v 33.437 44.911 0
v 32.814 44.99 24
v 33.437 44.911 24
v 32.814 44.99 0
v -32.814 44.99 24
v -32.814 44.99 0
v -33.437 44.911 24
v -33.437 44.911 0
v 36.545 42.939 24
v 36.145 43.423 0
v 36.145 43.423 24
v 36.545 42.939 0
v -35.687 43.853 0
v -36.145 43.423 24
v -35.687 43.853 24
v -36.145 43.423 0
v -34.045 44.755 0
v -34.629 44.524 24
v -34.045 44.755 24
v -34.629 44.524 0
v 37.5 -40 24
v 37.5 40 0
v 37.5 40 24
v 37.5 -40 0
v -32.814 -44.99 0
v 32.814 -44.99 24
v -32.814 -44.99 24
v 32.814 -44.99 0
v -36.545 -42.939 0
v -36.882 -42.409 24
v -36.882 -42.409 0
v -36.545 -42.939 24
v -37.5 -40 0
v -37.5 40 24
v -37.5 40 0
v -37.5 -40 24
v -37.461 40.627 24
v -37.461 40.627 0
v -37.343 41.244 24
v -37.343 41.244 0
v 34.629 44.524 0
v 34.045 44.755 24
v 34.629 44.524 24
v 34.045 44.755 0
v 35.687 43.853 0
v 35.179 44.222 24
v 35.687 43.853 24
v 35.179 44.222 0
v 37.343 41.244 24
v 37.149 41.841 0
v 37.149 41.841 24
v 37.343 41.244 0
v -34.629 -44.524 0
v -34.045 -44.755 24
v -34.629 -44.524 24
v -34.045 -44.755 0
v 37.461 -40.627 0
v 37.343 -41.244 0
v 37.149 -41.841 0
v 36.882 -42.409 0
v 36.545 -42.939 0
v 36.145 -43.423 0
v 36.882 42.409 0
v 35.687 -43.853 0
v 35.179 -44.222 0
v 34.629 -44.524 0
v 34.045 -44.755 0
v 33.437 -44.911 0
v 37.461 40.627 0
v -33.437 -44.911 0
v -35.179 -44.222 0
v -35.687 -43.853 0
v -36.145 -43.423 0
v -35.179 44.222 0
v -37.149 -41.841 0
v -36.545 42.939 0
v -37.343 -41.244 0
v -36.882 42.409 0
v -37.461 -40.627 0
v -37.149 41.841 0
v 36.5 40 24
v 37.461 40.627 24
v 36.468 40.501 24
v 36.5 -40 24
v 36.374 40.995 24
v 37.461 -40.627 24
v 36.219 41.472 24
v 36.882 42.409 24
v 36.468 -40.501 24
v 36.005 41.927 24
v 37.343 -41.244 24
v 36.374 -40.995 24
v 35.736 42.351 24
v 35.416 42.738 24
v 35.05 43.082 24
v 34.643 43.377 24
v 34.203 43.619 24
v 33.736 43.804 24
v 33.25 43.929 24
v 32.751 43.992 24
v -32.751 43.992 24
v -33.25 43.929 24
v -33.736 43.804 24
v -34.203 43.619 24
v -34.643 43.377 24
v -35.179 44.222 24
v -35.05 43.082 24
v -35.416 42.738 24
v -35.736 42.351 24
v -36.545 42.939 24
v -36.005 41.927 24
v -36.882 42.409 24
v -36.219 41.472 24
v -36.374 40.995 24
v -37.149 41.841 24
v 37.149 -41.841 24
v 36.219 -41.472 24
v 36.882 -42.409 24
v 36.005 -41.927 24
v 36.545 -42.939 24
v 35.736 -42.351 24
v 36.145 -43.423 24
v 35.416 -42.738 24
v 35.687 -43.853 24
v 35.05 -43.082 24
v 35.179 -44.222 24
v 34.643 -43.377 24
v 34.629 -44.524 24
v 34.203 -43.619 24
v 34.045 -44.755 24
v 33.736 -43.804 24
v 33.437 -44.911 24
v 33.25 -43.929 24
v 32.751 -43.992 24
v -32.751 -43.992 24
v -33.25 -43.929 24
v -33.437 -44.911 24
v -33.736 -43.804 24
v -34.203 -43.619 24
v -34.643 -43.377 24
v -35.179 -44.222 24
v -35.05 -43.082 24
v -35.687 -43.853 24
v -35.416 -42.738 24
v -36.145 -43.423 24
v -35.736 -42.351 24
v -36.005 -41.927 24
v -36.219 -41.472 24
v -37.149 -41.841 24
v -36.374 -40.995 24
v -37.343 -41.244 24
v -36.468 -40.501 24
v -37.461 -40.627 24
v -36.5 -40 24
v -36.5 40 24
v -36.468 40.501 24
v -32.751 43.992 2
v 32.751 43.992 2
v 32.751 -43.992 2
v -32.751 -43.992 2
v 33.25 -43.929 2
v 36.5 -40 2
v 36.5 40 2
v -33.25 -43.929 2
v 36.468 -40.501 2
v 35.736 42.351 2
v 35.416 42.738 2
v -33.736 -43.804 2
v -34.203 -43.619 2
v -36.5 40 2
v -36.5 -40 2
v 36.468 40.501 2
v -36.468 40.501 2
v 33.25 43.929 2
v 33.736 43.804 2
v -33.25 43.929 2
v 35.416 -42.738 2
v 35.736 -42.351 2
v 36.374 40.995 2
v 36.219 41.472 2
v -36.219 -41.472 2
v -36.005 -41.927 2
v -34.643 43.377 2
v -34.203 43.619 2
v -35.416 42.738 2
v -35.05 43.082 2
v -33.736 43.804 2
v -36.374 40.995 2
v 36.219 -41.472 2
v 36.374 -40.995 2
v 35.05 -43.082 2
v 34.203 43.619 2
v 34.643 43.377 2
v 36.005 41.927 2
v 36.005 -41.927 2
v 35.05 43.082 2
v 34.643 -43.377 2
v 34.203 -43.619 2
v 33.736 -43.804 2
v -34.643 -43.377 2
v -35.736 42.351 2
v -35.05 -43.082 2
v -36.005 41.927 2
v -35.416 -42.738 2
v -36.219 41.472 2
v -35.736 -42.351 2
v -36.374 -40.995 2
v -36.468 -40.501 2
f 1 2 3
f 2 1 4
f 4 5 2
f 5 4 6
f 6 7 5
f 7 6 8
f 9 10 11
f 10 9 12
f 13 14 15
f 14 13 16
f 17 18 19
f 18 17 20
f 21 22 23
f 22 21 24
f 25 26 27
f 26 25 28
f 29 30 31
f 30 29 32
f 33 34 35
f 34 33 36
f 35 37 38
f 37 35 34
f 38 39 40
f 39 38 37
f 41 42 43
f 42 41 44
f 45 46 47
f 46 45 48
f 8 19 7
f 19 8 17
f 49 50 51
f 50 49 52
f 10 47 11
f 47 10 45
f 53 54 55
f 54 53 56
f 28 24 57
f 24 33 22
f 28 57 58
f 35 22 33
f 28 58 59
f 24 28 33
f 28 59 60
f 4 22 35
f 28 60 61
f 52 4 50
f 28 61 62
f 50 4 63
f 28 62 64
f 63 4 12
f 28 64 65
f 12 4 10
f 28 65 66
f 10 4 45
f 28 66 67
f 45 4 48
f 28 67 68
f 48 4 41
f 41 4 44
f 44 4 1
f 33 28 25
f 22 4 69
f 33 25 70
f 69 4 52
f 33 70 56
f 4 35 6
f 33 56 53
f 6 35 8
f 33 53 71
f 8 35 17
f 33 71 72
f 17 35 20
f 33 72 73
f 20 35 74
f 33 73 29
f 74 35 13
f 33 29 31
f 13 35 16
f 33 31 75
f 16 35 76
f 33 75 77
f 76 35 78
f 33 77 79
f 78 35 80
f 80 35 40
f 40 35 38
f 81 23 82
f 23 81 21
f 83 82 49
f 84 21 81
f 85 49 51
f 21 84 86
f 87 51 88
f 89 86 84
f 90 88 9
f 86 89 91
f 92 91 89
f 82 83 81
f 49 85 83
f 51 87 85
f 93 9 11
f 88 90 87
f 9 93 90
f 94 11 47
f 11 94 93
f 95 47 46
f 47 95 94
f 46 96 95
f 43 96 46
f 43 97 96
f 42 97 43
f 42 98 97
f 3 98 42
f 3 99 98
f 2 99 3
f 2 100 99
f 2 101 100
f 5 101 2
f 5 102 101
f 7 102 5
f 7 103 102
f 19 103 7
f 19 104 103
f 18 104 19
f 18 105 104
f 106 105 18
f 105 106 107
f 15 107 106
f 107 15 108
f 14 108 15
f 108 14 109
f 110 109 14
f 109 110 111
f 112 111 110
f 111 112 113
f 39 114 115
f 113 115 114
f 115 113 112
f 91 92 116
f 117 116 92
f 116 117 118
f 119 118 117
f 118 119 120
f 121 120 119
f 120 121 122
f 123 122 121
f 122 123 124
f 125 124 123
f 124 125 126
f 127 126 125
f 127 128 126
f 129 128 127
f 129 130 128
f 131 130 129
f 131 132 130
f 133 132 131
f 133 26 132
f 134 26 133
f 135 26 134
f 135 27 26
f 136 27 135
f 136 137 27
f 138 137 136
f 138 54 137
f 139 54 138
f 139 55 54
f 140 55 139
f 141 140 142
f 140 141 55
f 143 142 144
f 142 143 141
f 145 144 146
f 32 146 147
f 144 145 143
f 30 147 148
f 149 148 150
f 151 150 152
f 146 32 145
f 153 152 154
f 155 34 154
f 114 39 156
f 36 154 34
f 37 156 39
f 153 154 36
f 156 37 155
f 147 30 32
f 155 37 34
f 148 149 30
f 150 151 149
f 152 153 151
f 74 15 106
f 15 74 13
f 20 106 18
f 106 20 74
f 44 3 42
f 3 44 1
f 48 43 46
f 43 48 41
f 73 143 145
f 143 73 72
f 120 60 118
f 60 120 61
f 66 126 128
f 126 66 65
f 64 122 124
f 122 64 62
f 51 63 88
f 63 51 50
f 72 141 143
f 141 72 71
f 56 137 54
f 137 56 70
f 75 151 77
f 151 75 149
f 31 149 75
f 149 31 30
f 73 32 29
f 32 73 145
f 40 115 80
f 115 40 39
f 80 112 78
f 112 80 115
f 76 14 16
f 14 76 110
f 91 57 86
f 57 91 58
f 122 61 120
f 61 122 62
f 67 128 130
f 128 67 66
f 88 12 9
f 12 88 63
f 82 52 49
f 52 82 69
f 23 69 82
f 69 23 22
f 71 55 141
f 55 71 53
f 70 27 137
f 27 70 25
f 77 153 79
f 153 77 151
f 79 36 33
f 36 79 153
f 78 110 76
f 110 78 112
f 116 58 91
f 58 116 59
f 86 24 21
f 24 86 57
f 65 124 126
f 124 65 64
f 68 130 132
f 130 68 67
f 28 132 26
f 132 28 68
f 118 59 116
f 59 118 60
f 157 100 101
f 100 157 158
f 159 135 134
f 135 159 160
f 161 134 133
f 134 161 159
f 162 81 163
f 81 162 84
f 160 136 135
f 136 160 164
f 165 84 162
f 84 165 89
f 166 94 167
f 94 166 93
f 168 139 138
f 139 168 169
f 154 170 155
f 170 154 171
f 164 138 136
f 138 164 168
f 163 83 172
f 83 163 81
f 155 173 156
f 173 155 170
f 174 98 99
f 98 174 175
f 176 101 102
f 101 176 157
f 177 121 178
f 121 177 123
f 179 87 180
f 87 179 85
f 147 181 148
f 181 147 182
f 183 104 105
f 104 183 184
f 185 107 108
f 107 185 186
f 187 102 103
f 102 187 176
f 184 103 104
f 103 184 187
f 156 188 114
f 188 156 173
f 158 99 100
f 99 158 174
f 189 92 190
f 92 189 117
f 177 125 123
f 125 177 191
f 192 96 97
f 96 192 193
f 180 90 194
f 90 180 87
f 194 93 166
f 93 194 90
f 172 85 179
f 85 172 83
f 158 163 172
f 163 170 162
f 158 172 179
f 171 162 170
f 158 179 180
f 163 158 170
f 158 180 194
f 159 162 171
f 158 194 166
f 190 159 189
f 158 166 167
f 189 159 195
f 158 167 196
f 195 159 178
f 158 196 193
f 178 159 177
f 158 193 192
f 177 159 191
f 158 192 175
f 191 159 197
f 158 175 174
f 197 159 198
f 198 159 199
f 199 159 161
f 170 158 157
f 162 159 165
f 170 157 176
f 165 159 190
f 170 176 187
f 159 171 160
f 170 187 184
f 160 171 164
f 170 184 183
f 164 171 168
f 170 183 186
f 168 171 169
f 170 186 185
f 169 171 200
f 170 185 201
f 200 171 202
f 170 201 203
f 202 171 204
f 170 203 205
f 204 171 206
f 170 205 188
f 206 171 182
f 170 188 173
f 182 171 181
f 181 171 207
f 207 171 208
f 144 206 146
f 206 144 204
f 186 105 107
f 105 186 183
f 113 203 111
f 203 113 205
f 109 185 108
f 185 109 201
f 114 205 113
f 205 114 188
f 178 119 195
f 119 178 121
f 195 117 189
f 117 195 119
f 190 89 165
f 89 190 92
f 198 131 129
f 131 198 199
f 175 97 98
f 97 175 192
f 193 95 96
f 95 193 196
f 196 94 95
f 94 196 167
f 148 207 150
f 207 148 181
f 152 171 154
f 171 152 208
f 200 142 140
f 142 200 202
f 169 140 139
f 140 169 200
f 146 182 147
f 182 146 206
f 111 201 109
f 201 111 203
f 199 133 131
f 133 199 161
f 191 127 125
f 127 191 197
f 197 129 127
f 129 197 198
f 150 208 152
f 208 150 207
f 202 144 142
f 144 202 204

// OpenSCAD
$fn = 50;


difference() {
	union() {
		hull() {
			translate(v = [-32.5000000000, 40.0000000000, 0]) {
				cylinder(h = 24, r = 5);
			}
			translate(v = [32.5000000000, 40.0000000000, 0]) {
				cylinder(h = 24, r = 5);
			}
			translate(v = [-32.5000000000, -40.0000000000, 0]) {
				cylinder(h = 24, r = 5);
			}
			translate(v = [32.5000000000, -40.0000000000, 0]) {
				cylinder(h = 24, r = 5);
			}
		}
	}
	union() {
		translate(v = [0, 0, 2]) {
			hull() {
				translate(v = [-32.5000000000, 40.0000000000, 0]) {
					cylinder(h = 22, r = 4);
				}
				translate(v = [32.5000000000, 40.0000000000, 0]) {
					cylinder(h = 22, r = 4);
				}
				translate(v = [-32.5000000000, -40.0000000000, 0]) {
					cylinder(h = 22, r = 4);
				}
				translate(v = [32.5000000000, -40.0000000000, 0]) {
					cylinder(h = 22, r = 4);
				}
			}
		}
	}
}
